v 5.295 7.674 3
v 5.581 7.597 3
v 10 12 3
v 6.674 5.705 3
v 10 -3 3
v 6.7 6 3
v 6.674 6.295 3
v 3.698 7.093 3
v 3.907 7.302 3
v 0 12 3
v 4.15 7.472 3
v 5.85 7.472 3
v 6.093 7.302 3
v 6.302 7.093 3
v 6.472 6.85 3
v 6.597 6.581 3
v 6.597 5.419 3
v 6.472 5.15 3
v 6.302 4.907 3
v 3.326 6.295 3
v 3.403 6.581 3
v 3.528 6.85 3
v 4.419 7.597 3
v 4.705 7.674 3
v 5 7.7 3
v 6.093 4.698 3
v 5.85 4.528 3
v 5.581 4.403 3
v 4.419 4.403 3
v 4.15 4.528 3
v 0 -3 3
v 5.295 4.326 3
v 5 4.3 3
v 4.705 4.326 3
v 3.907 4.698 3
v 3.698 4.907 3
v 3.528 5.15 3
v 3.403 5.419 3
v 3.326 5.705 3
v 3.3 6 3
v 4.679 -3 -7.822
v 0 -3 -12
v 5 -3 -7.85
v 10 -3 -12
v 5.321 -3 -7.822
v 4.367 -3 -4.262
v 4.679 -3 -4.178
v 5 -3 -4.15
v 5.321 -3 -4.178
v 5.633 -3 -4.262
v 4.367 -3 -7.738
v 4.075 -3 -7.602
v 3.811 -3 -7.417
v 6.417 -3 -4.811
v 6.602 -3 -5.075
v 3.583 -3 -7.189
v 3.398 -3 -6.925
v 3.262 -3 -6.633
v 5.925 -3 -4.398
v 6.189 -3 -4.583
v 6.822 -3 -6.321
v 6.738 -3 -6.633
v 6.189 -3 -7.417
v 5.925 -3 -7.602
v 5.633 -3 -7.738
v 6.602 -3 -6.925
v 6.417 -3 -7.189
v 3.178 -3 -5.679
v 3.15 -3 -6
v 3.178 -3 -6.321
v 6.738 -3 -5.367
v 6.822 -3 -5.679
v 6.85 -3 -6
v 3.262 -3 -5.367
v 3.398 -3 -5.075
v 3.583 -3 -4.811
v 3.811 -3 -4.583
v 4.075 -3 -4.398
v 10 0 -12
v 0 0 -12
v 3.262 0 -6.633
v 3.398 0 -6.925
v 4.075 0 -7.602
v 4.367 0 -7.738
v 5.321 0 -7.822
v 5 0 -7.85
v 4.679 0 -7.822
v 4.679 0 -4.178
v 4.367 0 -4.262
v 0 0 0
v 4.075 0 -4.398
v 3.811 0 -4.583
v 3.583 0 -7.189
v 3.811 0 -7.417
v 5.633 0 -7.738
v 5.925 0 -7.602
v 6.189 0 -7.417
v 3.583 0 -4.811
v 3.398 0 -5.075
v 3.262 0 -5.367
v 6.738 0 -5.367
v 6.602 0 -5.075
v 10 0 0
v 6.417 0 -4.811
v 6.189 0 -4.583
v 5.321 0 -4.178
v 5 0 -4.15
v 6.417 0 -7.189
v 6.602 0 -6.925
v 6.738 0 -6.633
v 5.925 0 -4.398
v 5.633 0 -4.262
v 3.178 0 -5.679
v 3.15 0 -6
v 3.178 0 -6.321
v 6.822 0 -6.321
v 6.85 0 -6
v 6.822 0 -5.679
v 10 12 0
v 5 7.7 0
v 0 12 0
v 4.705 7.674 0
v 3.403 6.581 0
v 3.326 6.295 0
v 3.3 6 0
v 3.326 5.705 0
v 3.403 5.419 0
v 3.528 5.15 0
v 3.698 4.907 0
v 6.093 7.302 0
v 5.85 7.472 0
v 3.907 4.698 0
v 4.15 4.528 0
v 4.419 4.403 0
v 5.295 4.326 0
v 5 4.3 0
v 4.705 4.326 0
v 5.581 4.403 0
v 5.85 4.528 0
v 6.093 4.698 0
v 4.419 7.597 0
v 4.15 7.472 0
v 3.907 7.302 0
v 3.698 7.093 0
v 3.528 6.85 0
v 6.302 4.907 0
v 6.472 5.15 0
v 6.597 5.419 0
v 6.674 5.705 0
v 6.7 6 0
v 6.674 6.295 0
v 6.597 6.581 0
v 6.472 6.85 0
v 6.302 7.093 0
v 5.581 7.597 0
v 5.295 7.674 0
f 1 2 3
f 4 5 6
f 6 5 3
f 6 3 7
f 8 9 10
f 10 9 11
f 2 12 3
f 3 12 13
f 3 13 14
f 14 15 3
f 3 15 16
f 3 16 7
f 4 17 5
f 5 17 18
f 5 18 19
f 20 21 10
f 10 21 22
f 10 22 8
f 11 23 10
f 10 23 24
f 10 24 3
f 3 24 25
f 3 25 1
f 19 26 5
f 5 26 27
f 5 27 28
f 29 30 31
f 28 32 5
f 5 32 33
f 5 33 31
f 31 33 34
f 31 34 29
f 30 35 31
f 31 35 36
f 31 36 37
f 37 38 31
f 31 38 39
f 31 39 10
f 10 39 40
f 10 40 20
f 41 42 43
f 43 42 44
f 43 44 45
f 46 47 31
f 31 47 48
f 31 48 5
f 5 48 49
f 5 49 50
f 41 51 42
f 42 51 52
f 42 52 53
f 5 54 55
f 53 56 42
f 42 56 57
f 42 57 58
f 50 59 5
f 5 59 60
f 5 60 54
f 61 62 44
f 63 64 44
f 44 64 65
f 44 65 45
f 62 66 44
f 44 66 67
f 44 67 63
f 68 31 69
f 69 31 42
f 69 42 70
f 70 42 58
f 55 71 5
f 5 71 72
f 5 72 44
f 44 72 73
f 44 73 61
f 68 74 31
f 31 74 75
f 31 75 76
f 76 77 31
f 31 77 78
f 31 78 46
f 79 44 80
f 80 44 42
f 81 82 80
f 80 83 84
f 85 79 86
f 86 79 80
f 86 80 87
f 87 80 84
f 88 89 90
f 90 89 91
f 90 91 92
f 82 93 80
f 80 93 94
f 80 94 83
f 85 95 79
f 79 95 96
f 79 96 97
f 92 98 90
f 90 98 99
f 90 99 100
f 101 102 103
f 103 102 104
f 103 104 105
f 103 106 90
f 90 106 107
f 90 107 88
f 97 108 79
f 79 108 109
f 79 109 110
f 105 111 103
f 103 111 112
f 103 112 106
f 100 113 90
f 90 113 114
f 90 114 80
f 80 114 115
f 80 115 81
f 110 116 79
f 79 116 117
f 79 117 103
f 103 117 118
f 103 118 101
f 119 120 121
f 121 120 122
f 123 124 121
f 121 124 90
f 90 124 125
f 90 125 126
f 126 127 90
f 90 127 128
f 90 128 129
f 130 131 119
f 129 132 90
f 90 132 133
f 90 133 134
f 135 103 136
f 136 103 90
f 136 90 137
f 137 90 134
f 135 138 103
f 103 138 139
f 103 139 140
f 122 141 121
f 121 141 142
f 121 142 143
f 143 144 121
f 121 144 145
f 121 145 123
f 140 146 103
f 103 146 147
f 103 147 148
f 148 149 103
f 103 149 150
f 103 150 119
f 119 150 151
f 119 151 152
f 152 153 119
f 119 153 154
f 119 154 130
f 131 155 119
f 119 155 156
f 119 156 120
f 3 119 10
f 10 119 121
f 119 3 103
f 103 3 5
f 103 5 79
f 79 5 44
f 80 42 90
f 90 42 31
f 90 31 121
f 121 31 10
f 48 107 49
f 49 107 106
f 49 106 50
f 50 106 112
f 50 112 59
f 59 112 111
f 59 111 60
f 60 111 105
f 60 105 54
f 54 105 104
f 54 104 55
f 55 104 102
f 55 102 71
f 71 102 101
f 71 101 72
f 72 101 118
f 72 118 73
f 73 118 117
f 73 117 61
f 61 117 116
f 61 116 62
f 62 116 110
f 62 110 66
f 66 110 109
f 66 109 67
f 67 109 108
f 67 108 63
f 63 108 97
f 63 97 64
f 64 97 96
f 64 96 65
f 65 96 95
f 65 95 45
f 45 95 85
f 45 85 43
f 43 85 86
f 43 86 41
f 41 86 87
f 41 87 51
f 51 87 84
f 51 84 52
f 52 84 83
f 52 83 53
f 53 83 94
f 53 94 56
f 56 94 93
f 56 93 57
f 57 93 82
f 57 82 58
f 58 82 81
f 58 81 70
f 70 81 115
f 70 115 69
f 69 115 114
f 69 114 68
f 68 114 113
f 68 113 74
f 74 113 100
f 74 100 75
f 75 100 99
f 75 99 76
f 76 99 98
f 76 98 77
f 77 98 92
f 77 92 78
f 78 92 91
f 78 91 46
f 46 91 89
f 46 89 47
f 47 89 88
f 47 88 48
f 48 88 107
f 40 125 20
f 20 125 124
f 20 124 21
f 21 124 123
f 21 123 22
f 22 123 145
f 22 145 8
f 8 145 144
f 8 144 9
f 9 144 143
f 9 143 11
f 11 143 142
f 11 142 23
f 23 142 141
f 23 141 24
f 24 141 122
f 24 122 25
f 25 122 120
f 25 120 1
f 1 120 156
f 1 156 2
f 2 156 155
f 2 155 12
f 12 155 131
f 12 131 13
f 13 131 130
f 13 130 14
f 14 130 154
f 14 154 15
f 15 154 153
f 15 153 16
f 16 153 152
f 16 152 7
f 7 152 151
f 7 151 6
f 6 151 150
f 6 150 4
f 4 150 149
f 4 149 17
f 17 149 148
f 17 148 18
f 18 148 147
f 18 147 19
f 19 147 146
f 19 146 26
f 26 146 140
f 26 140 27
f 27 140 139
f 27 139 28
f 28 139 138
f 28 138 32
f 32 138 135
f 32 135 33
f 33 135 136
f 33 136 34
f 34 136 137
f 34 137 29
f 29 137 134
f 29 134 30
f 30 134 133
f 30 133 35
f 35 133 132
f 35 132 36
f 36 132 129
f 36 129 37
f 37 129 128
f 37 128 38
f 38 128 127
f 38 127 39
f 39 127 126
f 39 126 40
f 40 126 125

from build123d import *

# Parameters (mm, degrees)
BOSS_EXTRUDE1_DEPTH = 10
SKETCH2_R           = 1.85
CUT_EXTRUDE1_DEPTH  = 20.697715604
SKETCH4_R           = 1.7
CUT_EXTRUDE2_DEPTH  = 20.697715604


with BuildPart() as part:
    # Sketch1 → Boss-Extrude1 (new body)
    with BuildSketch(Plane(origin=(0, 0, 0), x_dir=(0, 0, -1), z_dir=(1, 0, 0))):
        Polygon((-3, 12), (0, 12), (0, 0), (12, 0), (12, -3), (-3, -3), align=None)
    extrude(amount=BOSS_EXTRUDE1_DEPTH)

    # Sketch2 → Cut-Extrude1 (cut, through all)
    with BuildSketch(Plane(origin=(0, 0, 0), x_dir=(1, 0, 0), z_dir=(0, 1, 0))):
        with Locations(Location((5, 6, 0), (0, 0, 270))):
            Circle(SKETCH2_R)
    extrude(amount=-CUT_EXTRUDE1_DEPTH, mode=Mode.SUBTRACT)

    # Sketch4 → Cut-Extrude2 (cut, through all)
    with BuildSketch(Plane(origin=(0, 0, 0), x_dir=(-1, 0, 0), z_dir=(0, 0, -1))):
        with Locations((-5, 6)):
            Circle(SKETCH4_R)
    extrude(amount=-CUT_EXTRUDE2_DEPTH, mode=Mode.SUBTRACT)


solid = part.part
